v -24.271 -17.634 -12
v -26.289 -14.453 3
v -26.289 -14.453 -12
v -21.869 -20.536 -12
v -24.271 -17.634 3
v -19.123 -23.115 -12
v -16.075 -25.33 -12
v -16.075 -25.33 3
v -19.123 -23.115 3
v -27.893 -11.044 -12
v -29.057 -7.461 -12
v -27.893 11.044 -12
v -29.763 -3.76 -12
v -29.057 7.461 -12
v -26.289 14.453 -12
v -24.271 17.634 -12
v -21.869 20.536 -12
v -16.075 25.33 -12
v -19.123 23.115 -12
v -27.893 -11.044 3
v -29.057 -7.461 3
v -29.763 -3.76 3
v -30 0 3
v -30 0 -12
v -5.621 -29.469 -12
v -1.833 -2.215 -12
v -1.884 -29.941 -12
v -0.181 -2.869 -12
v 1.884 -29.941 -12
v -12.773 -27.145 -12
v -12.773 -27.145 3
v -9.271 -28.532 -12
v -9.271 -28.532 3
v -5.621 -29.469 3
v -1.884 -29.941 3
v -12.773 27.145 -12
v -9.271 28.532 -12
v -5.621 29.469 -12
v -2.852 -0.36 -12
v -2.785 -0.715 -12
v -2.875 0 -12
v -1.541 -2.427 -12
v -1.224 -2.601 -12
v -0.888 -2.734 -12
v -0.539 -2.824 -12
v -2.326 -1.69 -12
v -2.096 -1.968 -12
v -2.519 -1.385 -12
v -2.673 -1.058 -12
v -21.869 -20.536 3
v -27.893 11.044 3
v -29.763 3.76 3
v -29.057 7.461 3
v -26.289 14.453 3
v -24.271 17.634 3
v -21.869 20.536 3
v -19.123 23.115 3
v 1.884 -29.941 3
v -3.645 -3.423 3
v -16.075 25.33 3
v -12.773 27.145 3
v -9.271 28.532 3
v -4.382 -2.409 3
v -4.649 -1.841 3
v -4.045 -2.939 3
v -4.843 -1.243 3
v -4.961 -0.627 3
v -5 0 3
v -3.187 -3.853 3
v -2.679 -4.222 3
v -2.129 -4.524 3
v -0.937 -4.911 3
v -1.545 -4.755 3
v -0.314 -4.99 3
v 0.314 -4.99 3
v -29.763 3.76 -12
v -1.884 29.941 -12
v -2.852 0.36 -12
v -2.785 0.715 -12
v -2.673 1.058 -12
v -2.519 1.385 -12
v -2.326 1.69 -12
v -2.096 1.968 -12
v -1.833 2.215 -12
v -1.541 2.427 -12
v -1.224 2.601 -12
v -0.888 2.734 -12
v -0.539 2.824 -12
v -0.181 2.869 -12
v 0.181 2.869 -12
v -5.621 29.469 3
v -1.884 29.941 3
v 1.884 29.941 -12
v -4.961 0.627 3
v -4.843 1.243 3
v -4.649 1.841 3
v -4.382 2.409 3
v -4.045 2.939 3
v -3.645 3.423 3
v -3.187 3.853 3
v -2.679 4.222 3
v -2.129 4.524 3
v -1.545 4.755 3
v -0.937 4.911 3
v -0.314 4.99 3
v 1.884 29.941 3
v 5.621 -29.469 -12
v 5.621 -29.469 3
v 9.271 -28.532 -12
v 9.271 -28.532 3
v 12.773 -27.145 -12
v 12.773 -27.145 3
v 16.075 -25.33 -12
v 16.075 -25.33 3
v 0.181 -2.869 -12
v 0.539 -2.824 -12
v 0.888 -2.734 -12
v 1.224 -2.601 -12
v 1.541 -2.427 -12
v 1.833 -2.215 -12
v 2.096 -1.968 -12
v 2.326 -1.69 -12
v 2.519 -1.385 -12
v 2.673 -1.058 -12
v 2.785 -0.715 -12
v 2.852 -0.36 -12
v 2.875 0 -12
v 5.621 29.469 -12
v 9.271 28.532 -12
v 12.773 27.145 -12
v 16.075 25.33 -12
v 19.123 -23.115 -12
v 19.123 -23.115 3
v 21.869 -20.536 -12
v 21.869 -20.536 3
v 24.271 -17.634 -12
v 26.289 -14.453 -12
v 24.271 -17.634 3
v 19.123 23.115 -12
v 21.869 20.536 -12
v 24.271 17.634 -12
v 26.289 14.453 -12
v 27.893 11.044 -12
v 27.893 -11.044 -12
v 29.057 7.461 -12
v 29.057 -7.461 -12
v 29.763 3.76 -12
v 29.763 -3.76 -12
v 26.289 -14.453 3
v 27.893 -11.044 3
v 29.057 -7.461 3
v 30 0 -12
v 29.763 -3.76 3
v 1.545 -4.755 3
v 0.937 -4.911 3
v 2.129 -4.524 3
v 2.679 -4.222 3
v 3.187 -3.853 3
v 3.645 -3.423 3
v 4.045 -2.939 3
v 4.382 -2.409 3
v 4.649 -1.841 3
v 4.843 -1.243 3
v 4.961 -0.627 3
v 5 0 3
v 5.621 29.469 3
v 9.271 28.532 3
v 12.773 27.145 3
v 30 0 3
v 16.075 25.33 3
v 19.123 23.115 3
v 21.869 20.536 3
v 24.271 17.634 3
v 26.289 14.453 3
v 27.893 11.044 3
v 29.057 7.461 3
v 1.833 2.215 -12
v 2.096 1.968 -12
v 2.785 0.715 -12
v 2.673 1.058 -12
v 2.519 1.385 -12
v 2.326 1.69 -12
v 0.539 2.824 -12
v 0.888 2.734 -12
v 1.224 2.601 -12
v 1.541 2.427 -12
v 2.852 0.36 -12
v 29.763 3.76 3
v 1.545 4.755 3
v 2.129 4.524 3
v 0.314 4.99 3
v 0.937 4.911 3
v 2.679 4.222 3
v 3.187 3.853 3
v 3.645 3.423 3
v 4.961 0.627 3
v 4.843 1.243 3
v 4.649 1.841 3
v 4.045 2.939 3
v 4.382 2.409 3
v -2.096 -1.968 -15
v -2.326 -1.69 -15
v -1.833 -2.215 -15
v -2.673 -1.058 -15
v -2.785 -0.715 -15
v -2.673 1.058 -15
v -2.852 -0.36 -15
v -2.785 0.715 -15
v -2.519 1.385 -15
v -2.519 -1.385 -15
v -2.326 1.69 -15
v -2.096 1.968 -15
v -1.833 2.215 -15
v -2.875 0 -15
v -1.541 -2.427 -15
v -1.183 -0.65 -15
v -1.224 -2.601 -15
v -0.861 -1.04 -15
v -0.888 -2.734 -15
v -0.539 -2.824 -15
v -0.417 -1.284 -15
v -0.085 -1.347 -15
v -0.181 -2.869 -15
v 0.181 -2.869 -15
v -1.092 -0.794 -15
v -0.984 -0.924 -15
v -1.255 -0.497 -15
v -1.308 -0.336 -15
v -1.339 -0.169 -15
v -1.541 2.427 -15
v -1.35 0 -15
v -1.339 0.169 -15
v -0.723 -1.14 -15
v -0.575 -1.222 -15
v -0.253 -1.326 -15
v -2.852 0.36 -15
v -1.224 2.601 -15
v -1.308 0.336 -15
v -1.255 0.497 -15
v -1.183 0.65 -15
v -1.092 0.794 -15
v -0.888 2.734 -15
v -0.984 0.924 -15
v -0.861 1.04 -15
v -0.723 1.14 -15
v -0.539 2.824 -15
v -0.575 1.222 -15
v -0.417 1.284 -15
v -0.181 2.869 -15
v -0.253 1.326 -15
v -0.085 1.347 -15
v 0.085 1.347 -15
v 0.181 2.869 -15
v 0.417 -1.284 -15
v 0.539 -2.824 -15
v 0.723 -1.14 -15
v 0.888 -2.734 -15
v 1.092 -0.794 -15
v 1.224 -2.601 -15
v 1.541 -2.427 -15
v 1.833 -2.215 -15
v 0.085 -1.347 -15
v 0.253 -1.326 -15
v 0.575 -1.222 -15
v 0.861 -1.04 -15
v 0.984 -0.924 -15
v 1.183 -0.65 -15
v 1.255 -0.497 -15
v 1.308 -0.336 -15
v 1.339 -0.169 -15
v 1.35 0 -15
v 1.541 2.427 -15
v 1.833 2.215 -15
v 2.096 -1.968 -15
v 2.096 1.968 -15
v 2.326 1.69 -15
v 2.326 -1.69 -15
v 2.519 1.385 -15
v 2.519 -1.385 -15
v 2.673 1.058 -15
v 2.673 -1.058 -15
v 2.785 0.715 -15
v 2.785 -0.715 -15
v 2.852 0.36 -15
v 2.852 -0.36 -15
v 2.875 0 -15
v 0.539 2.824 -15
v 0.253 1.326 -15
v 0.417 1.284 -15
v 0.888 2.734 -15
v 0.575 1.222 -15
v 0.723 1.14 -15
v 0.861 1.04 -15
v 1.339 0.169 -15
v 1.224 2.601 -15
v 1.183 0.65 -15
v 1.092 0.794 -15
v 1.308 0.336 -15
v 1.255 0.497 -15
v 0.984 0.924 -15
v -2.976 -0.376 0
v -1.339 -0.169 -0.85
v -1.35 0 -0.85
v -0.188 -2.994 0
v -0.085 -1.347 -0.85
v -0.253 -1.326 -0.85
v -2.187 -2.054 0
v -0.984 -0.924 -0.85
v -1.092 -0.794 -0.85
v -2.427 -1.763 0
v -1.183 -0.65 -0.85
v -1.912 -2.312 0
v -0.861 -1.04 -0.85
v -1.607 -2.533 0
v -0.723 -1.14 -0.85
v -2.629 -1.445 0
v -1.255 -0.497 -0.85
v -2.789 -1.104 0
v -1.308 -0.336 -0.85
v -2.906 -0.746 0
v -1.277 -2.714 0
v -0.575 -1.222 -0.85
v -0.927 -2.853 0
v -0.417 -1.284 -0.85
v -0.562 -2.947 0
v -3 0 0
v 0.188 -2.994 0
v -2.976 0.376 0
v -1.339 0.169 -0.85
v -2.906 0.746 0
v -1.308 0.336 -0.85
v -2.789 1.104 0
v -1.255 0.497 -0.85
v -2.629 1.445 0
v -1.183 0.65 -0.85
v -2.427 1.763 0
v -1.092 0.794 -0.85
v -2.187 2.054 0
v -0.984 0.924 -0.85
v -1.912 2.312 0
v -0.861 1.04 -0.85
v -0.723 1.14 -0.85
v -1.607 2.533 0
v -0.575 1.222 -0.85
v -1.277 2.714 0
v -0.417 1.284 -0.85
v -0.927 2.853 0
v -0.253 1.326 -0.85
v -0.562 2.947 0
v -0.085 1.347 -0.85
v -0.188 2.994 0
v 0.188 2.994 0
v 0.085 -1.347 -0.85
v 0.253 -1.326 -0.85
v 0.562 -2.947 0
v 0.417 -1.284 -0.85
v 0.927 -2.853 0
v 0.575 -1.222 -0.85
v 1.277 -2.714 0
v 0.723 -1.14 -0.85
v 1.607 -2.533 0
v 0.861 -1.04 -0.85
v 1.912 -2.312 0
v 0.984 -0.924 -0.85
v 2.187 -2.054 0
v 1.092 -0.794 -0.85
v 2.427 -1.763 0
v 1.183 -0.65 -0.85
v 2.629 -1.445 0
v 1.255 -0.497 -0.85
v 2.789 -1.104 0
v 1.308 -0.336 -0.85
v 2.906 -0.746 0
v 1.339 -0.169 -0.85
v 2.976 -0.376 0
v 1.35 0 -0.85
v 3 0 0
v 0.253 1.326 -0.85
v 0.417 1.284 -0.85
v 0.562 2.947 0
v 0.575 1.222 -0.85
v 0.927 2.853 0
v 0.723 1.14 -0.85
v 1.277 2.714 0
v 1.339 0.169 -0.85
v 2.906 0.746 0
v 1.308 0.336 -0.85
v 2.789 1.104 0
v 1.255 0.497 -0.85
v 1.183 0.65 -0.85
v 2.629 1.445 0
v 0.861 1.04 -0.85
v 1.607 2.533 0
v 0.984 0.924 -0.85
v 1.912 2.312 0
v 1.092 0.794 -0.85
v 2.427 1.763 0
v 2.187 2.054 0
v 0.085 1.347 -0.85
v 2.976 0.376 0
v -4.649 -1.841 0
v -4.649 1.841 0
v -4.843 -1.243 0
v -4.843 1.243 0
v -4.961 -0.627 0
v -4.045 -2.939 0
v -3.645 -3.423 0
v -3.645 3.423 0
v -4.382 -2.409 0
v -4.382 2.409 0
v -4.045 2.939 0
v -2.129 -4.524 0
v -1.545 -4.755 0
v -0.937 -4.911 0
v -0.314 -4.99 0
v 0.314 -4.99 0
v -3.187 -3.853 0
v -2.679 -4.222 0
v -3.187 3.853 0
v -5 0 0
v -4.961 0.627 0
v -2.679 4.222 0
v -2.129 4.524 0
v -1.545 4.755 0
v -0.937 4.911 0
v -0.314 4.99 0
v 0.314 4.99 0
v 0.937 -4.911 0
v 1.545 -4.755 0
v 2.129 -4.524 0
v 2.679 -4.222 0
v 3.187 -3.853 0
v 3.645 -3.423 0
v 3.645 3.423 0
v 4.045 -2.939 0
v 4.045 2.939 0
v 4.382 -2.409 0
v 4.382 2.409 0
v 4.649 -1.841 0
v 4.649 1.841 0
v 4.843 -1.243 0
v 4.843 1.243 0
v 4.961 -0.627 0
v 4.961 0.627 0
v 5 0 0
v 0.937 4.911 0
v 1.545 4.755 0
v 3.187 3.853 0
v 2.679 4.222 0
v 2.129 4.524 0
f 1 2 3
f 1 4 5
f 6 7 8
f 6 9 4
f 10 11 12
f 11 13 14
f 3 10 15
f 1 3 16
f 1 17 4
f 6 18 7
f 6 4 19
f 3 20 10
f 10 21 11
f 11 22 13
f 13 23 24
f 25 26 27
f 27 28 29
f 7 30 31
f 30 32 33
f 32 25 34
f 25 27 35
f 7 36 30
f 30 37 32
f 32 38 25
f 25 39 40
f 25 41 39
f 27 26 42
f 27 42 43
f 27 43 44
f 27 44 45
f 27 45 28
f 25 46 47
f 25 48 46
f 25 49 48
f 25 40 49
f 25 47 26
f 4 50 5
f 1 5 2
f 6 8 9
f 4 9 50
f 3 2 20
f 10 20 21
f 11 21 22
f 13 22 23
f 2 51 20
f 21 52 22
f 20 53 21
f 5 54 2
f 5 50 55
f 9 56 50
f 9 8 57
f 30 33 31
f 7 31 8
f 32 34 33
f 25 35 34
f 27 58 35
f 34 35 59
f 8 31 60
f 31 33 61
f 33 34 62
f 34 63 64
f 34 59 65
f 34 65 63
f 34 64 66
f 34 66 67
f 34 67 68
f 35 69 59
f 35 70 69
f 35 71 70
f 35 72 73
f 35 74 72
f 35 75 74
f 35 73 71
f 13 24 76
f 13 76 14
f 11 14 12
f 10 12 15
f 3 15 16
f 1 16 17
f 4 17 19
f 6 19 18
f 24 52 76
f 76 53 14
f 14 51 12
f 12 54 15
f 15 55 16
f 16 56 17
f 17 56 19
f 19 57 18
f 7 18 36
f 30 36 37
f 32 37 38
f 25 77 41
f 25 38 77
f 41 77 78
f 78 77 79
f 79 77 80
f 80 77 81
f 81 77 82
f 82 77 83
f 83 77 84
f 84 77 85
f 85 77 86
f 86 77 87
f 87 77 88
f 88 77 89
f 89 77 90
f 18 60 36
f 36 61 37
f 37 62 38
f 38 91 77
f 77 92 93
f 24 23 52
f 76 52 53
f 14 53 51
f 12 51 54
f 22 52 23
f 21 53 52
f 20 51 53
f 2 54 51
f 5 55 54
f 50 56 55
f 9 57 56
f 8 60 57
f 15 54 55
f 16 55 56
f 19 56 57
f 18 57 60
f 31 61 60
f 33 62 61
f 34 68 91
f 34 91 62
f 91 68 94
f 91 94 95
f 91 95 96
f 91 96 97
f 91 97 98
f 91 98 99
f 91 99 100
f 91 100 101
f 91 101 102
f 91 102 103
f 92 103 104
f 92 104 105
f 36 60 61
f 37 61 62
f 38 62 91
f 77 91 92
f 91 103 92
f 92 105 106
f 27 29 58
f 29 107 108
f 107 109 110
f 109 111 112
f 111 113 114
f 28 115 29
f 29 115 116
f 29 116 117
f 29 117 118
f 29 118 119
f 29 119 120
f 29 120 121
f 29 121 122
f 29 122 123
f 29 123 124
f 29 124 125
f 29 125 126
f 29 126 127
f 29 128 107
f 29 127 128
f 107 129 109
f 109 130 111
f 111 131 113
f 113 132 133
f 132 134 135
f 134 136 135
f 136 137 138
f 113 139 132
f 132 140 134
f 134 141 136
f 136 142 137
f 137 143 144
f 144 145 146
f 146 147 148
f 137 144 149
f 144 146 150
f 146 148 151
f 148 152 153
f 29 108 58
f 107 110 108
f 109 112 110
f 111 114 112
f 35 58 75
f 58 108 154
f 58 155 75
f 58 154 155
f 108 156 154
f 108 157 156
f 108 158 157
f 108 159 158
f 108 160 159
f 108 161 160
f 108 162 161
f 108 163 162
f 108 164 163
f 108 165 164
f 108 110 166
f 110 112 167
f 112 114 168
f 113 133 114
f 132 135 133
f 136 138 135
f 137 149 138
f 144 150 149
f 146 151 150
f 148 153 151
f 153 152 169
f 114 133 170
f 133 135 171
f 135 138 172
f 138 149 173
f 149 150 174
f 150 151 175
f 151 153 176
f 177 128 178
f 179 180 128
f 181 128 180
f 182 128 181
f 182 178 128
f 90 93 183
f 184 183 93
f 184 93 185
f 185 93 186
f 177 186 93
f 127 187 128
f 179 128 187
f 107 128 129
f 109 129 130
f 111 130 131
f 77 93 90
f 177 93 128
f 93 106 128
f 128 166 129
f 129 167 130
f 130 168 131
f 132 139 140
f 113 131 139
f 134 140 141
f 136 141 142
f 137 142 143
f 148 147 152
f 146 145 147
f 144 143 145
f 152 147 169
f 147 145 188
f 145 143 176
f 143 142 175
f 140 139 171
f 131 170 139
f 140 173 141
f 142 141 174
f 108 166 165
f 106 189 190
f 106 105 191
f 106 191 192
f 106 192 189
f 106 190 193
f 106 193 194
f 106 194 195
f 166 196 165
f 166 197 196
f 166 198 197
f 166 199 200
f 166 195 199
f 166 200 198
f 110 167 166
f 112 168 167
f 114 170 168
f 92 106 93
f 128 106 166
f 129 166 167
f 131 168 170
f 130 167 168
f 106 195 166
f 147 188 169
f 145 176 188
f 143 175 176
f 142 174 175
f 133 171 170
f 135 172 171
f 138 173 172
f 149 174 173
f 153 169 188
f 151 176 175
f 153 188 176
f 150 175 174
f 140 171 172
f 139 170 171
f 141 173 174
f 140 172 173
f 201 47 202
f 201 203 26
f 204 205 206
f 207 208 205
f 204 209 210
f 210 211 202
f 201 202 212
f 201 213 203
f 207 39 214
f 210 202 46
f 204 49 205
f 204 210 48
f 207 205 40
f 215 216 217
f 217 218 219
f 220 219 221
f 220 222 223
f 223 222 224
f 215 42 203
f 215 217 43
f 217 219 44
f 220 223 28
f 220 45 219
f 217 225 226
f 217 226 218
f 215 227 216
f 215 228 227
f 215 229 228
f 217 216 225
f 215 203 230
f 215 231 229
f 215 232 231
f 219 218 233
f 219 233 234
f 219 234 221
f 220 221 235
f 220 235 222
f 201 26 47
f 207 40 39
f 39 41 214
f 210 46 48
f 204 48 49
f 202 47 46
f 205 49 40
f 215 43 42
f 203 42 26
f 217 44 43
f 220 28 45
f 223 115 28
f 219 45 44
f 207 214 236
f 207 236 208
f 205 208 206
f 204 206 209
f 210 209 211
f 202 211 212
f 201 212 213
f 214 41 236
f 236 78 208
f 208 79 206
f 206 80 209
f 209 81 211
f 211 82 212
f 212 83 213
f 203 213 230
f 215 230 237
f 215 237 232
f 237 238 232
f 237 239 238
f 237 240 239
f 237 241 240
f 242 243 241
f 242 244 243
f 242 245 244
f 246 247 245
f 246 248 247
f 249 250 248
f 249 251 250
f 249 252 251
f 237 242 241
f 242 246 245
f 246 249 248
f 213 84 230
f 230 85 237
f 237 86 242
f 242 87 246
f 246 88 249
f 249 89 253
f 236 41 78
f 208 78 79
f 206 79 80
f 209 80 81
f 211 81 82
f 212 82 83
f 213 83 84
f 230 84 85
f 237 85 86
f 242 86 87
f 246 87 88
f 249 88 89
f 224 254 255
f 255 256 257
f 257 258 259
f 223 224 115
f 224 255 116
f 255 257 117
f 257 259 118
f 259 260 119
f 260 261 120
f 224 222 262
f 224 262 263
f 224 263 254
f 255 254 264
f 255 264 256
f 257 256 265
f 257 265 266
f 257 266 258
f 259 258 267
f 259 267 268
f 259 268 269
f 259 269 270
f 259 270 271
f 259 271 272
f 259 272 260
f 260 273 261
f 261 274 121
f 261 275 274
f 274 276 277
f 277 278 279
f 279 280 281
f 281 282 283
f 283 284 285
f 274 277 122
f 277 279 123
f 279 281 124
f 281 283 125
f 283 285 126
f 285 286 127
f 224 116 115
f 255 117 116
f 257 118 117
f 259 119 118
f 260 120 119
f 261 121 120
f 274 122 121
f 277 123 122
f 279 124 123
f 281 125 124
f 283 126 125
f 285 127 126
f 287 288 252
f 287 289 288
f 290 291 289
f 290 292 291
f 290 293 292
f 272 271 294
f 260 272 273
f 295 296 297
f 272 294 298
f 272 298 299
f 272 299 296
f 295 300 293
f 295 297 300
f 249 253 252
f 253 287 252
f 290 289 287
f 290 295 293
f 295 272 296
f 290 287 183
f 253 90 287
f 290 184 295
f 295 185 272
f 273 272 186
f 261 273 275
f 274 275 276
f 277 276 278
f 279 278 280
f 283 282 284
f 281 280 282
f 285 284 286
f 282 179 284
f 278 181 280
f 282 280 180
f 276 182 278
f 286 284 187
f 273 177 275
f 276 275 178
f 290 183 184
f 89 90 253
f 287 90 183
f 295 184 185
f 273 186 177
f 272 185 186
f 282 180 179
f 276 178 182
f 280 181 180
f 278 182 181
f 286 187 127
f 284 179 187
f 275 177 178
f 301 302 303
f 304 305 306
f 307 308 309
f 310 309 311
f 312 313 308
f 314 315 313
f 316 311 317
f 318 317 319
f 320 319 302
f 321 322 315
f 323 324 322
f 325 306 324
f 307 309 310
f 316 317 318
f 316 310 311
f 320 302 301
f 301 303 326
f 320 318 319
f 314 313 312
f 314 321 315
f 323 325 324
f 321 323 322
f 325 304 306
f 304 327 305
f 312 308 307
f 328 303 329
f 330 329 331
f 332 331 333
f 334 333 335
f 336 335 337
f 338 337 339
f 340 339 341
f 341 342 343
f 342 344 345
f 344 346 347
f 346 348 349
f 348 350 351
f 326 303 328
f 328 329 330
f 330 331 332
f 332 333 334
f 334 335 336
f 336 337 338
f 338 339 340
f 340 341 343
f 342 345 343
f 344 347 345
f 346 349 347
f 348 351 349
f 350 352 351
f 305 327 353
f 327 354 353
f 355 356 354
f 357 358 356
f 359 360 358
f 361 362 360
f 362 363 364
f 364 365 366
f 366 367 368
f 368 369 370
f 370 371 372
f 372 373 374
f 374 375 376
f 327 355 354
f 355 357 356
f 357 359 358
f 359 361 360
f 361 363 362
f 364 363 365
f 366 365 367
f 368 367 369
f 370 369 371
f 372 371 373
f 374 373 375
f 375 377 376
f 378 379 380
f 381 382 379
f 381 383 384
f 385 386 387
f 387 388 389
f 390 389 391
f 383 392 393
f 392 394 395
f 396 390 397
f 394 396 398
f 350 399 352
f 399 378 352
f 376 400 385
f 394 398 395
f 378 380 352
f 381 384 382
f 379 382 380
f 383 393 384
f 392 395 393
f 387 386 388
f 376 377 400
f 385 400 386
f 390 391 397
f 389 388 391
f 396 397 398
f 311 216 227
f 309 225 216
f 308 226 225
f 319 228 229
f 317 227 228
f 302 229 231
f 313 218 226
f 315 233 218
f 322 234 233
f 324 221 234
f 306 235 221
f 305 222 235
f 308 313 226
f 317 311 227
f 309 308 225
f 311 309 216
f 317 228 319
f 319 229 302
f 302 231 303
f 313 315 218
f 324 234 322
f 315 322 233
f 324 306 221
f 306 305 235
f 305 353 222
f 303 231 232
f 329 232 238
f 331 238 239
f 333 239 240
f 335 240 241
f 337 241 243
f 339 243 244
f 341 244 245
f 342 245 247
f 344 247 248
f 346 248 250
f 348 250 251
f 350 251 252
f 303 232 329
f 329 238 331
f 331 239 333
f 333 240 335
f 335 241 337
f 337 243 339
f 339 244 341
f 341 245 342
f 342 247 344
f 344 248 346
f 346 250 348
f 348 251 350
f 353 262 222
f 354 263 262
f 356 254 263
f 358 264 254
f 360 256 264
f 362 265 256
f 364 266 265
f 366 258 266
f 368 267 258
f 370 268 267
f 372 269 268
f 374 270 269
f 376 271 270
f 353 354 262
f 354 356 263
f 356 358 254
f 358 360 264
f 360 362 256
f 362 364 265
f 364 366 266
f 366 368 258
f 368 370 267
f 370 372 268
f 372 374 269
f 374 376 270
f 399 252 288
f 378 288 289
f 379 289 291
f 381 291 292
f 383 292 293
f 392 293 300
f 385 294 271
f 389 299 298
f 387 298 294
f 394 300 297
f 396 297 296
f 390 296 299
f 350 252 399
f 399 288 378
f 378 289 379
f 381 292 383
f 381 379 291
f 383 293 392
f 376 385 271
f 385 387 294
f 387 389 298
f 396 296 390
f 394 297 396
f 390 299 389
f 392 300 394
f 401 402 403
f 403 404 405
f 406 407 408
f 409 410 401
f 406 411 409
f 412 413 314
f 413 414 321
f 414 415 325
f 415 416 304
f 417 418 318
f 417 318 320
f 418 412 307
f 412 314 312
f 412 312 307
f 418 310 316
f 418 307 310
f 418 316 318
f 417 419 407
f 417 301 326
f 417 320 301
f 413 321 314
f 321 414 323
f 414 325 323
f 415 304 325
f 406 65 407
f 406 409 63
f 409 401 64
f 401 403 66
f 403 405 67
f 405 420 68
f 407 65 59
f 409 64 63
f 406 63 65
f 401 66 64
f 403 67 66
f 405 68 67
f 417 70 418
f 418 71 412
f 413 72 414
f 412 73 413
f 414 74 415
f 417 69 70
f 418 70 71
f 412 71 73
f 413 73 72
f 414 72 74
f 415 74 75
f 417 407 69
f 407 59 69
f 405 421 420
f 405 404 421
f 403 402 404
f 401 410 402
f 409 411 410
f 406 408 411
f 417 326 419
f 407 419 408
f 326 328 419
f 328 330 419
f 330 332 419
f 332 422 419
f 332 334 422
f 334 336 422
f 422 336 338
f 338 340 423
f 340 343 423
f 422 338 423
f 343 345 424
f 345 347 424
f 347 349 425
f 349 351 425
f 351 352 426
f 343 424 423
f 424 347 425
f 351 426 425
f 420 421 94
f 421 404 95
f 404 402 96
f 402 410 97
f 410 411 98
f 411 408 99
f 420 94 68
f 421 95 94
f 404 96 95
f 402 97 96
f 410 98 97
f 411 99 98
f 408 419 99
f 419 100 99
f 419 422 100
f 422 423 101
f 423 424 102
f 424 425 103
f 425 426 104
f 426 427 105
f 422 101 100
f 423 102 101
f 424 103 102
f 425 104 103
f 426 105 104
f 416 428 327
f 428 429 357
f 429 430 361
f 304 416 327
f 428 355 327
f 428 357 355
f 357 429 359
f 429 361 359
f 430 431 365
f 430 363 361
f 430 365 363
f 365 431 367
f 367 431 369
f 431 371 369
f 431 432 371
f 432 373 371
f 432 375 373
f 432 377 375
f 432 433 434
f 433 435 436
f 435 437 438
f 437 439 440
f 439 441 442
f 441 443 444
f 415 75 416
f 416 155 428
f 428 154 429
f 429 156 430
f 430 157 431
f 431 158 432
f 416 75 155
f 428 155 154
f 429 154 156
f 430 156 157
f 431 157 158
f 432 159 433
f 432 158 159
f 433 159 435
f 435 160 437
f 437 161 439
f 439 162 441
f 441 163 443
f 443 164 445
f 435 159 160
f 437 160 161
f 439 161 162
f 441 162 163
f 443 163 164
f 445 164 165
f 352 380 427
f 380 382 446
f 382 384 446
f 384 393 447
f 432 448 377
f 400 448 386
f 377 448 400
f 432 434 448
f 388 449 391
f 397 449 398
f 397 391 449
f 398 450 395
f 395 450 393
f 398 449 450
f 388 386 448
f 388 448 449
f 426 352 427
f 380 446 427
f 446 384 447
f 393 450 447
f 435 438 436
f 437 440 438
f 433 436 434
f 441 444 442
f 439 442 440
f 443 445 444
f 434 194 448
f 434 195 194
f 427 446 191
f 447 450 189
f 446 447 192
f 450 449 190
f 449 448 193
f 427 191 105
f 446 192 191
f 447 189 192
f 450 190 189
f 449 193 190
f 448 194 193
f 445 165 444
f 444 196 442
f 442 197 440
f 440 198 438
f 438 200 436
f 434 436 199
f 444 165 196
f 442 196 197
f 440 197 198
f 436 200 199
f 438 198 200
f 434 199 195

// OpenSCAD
$fn = 50;

difference() {
	union() {
		translate(v = [0, 0, -12.0]) {
			cylinder(h = 15, r = 30.0);
		}
		#translate(v = [0, 0, -15.0]) {
			cylinder(h = 15, r = 2.875);
		}
	}
	union() {
		translate(v = [0, 0, 0]) {
			rotate(a = [0, 0, 0]) {
				difference() {
					union() {
						translate(v = [0, 0, -15.0]) {
							cylinder(h = 15, r = 1.0);
						}
						translate(v = [0, 0, -0.85]) {
							cylinder(h = 0.85, r1 = 1.35, r2 = 3.0);
						}
						translate(v = [0, 0, -15.0]) {
							cylinder(h = 15, r = 1.35);
						}
						translate(v = [0, 0, -15.0]) {
							cylinder(h = 15, r = 1.0);
						}
					}
					union();
				}
			}
		}
		#cylinder(h = 3, r = 5.0);
	}
}
